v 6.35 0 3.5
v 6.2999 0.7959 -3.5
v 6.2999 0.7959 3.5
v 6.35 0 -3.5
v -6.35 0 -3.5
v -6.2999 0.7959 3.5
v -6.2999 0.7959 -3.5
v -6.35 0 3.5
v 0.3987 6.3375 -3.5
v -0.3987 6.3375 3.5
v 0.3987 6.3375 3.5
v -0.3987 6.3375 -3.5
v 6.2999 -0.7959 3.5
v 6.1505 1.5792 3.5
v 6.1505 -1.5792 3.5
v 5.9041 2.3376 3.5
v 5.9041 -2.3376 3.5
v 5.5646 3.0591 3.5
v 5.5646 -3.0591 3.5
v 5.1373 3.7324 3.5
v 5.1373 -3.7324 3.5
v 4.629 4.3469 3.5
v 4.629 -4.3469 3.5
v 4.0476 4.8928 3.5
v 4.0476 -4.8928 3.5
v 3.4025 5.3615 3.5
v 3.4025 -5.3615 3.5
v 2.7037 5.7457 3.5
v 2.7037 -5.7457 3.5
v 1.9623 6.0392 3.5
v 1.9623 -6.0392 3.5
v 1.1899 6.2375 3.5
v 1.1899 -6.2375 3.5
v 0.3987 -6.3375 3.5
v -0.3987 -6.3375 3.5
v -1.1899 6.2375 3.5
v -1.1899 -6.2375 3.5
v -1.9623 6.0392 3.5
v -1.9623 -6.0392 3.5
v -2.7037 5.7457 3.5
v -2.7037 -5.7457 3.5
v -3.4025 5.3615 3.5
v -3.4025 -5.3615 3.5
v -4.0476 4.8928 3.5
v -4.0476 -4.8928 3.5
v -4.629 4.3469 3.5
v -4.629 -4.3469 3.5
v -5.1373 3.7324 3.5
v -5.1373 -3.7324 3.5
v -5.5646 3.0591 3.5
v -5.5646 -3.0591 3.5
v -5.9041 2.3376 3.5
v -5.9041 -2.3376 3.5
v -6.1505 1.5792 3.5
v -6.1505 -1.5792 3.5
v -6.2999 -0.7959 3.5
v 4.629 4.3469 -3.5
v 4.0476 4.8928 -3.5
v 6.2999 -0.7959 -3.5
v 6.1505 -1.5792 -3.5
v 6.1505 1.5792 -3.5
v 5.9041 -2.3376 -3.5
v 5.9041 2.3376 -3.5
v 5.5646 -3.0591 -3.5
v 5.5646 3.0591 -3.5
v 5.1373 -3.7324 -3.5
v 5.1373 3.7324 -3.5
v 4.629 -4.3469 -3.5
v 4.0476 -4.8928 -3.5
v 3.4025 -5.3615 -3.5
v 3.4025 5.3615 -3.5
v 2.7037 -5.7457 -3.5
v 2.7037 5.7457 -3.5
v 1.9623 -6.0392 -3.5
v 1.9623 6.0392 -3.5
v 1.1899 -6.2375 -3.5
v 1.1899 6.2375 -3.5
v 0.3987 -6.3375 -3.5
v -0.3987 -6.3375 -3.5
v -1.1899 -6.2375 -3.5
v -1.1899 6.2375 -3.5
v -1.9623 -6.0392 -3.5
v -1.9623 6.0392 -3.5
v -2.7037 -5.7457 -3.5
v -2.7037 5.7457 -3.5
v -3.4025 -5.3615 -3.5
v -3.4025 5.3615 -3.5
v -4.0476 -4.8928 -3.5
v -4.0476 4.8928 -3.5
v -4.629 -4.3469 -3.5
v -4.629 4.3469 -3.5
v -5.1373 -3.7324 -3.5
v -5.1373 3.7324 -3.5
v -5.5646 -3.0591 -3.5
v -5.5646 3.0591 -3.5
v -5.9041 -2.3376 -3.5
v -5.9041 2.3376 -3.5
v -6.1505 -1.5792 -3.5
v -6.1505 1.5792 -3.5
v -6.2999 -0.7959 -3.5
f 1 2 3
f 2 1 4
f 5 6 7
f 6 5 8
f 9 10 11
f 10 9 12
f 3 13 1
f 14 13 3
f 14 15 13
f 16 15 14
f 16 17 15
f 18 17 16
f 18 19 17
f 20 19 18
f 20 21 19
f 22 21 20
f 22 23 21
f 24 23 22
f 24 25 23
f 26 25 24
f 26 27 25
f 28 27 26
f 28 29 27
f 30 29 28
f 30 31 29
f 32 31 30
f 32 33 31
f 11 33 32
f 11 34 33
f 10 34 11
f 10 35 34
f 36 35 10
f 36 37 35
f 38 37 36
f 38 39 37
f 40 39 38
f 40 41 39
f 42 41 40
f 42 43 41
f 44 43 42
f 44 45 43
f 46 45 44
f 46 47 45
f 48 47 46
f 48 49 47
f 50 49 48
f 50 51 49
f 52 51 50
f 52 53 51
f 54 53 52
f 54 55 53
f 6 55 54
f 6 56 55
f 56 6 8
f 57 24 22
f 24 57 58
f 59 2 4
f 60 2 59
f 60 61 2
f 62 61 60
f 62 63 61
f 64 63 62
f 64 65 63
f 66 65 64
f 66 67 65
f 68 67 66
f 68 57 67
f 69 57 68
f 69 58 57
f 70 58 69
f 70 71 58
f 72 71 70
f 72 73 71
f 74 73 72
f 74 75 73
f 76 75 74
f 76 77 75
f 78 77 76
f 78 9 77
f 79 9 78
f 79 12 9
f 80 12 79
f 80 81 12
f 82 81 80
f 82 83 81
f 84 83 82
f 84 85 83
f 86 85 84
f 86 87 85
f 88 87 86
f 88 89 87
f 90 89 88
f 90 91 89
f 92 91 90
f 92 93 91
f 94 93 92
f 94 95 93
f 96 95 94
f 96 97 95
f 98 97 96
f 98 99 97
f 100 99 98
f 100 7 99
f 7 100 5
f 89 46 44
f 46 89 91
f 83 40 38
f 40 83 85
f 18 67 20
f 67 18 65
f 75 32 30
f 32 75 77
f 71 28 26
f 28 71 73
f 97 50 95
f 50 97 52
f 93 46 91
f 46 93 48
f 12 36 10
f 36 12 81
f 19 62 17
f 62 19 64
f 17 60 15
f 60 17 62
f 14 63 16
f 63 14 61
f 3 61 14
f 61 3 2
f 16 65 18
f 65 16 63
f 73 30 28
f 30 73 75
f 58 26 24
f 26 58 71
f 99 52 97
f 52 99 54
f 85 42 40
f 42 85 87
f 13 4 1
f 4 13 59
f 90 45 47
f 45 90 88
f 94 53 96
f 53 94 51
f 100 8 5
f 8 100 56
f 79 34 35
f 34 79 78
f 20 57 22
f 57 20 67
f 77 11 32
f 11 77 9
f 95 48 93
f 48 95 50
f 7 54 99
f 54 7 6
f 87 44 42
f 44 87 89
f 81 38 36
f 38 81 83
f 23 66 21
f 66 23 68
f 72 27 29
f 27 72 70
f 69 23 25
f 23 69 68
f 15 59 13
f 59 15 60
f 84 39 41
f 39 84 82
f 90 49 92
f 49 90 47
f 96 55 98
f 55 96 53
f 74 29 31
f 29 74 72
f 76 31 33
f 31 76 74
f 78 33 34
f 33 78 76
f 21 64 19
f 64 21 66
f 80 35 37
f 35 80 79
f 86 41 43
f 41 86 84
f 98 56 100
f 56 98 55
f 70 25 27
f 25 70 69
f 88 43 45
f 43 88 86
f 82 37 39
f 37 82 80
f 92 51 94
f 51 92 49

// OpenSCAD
$fn = 50;


difference() {
	union() {
		translate(v = [0, 0, -3.5000000000]) {
			cylinder(h = 7, r = 6.3500000000);
		}
	}
	union() {
		translate(v = [0, 0, -100.0000000000]) {
			cylinder(h = 200, r = 0);
		}
	}
}
